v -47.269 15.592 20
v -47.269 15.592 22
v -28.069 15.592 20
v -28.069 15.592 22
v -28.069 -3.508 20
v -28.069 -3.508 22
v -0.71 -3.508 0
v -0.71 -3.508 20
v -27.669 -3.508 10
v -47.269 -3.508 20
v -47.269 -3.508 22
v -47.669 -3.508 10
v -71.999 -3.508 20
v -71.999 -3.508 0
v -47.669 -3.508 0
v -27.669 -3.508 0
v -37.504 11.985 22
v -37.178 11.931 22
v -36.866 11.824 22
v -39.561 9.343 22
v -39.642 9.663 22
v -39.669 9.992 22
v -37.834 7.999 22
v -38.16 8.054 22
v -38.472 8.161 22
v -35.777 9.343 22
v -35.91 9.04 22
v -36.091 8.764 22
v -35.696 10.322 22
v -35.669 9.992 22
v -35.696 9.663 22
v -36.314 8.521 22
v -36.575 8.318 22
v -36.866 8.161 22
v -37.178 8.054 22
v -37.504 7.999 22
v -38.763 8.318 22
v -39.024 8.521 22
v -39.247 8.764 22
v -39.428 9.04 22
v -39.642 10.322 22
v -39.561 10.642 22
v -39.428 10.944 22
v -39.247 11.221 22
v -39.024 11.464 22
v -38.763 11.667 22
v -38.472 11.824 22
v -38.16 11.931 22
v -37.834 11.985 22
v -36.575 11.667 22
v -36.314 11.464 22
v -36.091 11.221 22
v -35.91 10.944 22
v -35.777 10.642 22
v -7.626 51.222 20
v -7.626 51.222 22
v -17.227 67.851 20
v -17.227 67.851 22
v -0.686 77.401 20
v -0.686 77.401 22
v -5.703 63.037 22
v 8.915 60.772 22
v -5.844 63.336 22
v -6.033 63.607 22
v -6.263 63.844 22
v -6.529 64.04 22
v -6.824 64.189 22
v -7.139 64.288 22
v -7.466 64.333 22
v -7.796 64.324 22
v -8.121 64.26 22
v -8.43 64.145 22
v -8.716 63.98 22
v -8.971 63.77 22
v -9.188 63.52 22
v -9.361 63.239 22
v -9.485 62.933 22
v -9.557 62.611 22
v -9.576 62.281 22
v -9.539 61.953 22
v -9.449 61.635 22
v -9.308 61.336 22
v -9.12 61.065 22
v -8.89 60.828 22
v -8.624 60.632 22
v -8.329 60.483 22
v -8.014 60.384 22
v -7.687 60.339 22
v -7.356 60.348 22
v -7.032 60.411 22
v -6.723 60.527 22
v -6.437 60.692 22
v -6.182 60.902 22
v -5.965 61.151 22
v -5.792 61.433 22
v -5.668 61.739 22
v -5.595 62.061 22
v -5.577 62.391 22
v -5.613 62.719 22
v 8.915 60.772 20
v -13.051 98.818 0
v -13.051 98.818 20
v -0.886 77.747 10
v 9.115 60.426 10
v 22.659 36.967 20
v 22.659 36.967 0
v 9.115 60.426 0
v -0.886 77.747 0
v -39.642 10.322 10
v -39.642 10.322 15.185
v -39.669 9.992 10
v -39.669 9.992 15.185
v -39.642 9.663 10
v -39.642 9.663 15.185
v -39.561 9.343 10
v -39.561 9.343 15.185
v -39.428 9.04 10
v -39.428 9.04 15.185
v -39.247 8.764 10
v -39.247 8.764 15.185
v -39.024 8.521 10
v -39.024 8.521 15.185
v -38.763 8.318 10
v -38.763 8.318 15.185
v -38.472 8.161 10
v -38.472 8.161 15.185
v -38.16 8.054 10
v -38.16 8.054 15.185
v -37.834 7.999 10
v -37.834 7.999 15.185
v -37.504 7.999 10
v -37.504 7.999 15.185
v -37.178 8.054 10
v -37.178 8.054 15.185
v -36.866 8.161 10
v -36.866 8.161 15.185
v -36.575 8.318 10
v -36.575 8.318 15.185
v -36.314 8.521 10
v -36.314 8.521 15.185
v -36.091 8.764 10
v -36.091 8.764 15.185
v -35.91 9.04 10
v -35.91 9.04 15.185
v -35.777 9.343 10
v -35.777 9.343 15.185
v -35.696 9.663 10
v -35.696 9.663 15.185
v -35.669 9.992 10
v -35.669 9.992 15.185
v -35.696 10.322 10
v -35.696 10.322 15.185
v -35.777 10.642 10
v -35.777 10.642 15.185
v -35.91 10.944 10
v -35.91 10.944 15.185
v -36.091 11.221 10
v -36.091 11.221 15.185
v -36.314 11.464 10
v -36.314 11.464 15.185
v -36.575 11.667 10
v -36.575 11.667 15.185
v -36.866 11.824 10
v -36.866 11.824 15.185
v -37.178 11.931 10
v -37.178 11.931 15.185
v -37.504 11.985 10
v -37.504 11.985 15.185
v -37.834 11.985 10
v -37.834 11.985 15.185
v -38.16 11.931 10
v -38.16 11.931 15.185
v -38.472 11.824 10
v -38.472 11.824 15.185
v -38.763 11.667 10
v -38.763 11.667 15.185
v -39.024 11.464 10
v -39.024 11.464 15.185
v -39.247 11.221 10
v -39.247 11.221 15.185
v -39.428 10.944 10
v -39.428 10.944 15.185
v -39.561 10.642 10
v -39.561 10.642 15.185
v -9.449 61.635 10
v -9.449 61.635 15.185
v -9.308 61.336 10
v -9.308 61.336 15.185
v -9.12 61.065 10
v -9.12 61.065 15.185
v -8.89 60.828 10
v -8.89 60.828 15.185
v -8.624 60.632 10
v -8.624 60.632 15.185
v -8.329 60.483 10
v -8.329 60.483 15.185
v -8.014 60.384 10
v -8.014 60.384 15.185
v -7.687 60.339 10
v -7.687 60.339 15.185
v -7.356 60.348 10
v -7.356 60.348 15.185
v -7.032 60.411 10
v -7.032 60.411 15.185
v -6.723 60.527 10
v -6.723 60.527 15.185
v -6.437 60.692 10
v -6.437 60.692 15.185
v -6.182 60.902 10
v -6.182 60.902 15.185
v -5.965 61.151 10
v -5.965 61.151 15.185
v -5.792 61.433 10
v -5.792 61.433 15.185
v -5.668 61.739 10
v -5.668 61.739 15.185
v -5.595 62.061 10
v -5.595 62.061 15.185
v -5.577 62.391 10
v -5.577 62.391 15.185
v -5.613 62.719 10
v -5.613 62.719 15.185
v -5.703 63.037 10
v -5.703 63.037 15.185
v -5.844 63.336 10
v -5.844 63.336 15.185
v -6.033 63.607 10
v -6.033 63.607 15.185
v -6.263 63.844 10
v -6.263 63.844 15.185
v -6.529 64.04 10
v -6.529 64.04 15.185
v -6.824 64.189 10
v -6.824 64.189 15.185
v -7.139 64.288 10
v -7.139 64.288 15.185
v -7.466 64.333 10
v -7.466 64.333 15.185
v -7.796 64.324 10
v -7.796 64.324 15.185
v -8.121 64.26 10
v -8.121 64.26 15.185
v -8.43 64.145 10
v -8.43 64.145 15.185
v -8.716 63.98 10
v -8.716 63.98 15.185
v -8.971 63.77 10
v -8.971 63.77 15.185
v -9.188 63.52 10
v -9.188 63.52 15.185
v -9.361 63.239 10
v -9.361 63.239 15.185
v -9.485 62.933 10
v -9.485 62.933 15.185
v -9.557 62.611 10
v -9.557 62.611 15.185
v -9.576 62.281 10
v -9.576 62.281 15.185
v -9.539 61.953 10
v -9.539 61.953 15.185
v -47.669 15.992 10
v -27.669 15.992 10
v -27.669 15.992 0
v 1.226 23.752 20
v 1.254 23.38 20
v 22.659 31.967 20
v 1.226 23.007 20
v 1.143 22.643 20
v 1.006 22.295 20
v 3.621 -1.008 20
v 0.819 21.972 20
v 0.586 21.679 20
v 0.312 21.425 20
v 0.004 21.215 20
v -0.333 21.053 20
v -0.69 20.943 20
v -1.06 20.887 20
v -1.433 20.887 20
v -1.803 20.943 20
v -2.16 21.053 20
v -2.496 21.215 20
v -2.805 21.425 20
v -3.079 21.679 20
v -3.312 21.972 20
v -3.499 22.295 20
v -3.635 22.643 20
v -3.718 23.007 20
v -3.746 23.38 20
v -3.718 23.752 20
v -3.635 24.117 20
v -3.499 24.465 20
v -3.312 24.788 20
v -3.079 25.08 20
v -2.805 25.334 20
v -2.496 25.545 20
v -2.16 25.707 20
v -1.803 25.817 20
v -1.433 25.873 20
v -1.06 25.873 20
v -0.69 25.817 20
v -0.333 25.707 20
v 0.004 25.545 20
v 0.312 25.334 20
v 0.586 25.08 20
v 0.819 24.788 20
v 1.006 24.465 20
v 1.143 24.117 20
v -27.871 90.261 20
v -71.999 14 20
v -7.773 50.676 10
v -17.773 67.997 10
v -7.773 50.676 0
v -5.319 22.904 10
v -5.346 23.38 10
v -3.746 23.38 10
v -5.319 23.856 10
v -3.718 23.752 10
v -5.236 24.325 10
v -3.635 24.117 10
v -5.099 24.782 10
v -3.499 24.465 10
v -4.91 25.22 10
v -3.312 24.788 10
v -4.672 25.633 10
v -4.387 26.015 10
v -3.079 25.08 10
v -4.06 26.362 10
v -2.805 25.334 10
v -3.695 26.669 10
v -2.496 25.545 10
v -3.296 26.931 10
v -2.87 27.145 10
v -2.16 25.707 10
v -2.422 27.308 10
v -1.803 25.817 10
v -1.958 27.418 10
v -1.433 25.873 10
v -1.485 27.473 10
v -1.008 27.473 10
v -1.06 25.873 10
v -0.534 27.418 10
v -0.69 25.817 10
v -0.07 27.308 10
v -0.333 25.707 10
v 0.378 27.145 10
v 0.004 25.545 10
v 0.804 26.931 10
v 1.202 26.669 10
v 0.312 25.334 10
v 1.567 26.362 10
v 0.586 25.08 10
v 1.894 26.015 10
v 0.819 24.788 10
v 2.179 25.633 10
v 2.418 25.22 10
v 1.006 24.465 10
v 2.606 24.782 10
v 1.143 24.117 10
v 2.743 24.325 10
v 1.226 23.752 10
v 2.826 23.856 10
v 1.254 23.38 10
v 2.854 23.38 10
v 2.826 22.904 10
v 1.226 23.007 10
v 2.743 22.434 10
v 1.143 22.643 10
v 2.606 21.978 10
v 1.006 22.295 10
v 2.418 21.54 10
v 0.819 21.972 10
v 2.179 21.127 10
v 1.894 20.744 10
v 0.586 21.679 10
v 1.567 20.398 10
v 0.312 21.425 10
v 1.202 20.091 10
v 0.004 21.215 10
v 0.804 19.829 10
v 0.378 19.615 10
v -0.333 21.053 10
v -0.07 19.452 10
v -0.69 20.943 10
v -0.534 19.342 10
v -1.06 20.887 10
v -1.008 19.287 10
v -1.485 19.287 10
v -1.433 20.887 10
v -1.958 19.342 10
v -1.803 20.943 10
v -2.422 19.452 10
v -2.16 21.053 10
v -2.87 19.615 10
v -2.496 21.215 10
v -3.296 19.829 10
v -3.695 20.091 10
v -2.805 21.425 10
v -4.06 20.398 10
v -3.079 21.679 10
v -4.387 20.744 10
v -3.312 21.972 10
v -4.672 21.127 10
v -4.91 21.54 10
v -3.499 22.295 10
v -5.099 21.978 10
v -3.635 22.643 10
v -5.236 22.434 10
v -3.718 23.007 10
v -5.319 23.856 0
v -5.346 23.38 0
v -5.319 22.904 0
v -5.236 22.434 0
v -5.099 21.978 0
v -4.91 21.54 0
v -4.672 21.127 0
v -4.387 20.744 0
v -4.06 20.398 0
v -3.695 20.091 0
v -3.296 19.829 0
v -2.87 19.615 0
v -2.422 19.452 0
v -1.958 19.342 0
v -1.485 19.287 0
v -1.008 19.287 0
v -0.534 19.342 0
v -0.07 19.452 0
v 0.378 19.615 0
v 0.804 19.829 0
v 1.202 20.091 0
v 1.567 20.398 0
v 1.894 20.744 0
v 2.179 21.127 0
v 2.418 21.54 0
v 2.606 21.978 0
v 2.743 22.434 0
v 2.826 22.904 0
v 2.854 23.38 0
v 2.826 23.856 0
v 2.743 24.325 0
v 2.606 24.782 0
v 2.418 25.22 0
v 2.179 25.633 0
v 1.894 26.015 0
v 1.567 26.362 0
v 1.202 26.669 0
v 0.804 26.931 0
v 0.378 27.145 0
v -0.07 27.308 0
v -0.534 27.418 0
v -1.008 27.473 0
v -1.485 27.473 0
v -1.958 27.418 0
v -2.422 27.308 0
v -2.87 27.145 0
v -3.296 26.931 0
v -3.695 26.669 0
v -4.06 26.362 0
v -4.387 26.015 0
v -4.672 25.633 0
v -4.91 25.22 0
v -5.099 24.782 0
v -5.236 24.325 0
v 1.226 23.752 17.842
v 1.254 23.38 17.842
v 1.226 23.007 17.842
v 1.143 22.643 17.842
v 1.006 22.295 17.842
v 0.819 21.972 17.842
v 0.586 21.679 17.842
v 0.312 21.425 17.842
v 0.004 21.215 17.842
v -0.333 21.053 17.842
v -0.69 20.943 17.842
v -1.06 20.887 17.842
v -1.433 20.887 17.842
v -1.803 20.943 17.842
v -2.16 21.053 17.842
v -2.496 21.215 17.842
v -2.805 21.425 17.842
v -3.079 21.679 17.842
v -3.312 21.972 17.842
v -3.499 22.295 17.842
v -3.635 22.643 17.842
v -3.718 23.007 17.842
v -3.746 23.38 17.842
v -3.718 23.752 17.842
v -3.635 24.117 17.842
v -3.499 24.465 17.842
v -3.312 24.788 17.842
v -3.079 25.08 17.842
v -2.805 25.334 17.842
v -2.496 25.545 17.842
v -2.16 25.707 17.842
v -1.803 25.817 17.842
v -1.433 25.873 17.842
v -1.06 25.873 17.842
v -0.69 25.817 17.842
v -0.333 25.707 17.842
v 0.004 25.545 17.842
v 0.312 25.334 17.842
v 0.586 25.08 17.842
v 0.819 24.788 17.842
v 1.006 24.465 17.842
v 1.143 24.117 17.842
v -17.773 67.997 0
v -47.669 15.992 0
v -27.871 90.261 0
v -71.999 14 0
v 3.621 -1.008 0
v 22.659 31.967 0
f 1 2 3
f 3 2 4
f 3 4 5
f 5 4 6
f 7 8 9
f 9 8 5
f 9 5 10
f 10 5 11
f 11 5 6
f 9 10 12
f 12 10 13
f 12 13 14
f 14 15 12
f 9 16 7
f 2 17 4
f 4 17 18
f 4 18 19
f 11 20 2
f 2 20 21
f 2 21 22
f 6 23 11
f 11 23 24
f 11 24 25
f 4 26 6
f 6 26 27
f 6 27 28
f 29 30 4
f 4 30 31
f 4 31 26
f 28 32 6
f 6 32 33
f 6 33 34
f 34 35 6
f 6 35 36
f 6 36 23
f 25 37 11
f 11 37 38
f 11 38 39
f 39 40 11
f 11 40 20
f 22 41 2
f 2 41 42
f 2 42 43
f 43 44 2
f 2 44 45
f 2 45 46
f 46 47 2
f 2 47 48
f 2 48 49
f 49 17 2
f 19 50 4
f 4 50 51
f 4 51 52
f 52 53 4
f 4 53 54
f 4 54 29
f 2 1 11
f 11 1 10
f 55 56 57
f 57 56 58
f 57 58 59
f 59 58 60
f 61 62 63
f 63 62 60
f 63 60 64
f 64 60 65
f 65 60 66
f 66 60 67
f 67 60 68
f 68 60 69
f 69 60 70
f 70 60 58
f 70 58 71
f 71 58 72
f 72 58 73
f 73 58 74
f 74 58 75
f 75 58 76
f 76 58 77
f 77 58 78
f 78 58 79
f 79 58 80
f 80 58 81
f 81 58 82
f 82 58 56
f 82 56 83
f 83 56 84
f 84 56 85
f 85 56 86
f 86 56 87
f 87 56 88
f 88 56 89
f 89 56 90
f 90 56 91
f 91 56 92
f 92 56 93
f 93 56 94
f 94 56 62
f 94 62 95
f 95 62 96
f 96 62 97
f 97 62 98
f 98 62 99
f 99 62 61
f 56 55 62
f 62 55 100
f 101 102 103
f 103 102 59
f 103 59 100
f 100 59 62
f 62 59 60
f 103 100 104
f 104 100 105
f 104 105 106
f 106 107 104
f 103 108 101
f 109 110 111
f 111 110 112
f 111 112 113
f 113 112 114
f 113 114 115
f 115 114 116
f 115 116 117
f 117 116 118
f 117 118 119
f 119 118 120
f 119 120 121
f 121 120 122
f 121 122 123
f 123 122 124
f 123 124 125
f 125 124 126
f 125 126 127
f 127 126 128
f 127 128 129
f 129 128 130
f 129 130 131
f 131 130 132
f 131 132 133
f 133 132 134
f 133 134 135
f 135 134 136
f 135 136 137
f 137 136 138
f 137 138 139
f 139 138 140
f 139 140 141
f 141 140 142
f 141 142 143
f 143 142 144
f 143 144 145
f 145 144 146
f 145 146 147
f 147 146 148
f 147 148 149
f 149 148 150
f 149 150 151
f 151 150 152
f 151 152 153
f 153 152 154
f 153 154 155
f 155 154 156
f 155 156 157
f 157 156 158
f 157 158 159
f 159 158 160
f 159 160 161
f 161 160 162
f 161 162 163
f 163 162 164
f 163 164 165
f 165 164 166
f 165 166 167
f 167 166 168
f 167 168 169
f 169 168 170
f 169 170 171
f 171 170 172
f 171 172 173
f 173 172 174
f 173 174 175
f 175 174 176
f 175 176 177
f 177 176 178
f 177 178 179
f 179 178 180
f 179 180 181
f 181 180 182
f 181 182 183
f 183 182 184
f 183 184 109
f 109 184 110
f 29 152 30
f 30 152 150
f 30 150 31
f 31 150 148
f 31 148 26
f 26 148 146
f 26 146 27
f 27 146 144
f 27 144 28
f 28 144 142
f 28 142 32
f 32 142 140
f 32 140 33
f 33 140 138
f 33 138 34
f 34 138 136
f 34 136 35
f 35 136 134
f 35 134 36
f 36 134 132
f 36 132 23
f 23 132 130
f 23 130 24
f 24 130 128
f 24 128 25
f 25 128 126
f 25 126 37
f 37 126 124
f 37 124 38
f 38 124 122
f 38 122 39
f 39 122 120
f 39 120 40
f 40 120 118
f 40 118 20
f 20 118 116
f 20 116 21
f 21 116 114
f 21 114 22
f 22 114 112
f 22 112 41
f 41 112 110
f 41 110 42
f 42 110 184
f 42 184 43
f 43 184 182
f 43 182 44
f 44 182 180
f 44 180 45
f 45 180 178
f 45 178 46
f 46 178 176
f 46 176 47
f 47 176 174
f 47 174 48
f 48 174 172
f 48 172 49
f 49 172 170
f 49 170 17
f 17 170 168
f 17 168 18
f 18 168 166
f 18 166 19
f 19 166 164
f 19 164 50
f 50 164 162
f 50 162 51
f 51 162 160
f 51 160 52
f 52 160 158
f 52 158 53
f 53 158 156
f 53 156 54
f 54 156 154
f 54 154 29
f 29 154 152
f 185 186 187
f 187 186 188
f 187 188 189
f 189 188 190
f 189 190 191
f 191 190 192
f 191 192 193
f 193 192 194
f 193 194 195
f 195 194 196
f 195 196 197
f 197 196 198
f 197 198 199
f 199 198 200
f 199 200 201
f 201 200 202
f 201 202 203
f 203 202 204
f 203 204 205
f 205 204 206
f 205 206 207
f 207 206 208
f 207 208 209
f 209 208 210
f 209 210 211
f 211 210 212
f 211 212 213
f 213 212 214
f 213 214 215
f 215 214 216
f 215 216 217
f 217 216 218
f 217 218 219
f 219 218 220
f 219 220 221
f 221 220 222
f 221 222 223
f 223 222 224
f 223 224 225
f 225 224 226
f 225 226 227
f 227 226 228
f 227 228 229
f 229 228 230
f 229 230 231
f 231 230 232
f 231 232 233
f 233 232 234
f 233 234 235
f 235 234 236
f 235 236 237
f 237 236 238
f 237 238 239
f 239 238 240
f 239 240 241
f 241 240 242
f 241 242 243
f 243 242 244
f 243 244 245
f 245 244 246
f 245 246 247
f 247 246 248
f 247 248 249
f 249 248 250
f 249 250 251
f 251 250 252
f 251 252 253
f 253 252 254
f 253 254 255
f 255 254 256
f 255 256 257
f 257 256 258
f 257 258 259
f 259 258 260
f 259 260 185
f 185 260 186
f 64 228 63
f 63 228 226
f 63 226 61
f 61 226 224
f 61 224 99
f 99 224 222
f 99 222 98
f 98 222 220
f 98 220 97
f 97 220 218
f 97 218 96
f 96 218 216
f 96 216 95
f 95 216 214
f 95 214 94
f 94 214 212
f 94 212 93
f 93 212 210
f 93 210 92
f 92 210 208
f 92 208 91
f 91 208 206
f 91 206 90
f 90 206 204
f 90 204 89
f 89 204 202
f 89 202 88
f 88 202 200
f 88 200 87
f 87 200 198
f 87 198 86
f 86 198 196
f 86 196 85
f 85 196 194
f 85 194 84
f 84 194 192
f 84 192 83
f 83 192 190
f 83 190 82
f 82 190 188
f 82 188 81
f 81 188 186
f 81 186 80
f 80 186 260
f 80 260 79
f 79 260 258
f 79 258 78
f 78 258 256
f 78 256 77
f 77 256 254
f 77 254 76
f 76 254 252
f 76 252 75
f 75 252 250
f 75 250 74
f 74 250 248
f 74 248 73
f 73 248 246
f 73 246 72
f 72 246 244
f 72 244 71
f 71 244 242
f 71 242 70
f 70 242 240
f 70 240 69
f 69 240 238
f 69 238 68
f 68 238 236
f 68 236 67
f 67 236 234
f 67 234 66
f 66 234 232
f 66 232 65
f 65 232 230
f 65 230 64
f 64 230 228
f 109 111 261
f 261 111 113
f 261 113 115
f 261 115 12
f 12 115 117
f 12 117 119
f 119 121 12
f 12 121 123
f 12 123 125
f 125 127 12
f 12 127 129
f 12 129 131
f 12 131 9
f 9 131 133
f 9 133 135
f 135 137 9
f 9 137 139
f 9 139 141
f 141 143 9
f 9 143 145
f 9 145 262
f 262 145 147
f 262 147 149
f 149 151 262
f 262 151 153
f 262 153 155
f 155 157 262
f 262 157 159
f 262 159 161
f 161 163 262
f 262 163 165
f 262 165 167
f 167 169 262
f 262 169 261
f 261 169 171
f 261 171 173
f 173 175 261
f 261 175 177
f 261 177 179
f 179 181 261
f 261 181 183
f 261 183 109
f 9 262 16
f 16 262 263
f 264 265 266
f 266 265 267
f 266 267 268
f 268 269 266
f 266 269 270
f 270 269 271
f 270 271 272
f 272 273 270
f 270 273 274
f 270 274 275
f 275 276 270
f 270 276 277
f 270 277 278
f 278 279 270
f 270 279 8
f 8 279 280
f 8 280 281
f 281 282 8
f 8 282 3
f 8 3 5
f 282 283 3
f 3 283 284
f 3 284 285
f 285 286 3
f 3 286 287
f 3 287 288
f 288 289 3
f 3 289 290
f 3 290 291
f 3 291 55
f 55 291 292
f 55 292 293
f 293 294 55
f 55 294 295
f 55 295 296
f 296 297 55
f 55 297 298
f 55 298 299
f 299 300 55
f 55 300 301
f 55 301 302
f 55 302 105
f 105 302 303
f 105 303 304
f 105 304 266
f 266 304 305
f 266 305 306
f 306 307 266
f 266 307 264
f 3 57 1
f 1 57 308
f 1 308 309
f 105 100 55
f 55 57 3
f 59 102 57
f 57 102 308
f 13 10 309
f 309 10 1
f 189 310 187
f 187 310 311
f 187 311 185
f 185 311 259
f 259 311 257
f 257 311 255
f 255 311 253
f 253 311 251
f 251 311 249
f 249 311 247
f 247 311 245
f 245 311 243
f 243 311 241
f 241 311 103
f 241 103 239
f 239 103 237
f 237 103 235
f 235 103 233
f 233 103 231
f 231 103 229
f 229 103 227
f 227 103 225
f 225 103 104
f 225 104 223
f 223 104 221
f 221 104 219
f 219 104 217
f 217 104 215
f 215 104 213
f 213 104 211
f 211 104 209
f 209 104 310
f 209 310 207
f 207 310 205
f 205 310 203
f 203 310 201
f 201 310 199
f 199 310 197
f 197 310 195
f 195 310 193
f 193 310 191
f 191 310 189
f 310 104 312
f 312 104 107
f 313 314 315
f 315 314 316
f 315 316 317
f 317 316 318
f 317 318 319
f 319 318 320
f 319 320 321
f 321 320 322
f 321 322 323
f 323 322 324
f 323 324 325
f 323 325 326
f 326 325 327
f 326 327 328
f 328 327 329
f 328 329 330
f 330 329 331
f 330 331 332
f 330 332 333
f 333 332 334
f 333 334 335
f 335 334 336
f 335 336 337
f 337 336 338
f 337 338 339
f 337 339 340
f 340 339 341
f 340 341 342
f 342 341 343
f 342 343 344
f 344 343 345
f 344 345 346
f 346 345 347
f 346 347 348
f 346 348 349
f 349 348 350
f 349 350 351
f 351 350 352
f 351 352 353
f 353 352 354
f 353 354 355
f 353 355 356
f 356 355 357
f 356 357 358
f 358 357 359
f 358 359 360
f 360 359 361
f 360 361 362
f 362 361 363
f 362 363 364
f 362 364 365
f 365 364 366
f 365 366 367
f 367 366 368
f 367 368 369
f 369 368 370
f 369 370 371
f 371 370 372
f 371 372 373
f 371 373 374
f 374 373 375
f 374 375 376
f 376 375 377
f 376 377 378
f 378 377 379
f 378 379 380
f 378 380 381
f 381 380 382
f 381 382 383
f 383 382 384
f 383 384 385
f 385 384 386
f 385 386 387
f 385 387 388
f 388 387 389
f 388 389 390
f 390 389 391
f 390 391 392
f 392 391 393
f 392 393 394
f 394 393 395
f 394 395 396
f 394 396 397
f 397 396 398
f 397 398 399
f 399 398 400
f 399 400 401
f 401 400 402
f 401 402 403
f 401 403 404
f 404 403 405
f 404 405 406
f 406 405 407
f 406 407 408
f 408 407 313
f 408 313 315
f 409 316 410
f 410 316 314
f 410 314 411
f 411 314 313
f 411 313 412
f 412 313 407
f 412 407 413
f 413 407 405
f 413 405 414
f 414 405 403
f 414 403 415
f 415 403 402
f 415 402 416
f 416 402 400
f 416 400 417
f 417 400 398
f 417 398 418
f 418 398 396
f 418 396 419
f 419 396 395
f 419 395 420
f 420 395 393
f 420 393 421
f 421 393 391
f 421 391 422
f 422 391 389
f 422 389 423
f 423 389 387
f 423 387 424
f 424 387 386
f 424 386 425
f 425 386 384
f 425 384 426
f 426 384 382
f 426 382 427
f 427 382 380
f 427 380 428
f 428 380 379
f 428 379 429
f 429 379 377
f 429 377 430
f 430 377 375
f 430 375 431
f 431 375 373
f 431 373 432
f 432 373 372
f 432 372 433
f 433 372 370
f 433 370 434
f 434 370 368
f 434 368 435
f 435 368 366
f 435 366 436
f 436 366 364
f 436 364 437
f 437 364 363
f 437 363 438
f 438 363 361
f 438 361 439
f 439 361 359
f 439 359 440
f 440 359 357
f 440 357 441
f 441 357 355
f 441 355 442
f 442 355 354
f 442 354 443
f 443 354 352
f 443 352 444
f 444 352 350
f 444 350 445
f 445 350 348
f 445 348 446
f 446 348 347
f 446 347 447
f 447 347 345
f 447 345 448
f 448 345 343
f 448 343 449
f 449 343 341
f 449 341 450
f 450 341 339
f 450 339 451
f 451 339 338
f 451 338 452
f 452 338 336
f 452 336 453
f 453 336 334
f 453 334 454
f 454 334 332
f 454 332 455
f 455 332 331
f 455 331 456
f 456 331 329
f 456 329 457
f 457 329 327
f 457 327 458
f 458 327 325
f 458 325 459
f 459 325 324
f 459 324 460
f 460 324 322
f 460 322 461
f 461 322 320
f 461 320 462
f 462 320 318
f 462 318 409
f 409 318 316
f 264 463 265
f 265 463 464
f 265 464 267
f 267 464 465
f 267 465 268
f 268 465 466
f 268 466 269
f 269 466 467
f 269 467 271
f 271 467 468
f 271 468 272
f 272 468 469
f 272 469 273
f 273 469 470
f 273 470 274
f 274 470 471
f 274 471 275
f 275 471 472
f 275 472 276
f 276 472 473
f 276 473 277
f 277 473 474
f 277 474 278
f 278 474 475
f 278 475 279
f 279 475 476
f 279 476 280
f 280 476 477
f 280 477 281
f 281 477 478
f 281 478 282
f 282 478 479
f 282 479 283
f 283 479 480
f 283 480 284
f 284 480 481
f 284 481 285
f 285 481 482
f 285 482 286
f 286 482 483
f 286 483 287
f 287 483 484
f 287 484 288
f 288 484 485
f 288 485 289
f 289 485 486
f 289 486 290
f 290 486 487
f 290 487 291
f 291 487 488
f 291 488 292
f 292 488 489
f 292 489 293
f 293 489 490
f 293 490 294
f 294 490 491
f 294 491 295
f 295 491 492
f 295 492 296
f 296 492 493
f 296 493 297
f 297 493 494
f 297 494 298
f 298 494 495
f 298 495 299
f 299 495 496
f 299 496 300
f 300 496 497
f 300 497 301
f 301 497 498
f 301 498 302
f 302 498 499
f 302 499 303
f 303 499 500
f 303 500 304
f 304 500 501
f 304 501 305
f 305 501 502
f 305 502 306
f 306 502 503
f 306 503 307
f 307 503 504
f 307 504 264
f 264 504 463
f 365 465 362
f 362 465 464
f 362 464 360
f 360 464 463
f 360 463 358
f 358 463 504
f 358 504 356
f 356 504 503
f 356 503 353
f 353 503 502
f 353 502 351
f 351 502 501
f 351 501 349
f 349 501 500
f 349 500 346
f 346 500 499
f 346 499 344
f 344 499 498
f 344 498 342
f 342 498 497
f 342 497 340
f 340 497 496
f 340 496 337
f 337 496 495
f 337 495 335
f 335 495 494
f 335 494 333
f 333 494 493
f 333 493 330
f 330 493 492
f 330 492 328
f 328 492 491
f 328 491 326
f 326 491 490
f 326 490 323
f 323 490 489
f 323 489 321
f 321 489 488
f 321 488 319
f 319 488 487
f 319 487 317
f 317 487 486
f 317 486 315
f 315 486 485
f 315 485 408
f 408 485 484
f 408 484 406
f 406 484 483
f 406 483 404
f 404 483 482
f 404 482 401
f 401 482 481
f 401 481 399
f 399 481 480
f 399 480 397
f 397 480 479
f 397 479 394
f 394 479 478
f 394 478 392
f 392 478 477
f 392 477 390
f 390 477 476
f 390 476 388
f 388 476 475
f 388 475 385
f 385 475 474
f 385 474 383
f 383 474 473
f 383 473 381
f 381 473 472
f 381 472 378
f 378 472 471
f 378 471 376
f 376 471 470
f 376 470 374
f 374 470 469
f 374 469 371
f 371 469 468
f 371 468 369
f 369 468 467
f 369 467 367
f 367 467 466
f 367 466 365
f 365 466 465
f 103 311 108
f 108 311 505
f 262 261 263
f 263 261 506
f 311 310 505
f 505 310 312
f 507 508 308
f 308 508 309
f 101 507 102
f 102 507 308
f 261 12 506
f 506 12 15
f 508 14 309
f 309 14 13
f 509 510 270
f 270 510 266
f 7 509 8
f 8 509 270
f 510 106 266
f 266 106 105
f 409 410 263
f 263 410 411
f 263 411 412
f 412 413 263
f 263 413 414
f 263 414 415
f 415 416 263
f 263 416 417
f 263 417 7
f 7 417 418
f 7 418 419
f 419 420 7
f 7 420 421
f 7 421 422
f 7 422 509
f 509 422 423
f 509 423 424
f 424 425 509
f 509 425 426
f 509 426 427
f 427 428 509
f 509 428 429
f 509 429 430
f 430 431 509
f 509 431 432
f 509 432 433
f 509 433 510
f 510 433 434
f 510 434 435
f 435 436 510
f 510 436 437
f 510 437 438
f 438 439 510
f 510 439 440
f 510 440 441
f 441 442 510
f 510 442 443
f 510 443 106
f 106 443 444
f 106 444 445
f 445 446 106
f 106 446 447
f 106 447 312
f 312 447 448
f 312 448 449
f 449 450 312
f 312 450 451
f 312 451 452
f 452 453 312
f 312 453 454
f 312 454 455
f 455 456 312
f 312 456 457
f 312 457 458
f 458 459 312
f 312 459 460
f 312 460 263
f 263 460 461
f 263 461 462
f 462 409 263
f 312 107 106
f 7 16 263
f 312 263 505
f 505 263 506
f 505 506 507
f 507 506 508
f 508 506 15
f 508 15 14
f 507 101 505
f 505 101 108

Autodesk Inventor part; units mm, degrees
ref_plane "YZ Plane" through (0, 0, 0) normal (1, 0, 0) x (0, 1, 0)
ref_plane "XZ Plane" through (0, 0, 0) normal (0, 1, 0) x (-1, 0, 0)
ref_plane "XY Plane" through (0, 0, 0) normal (0, 0, 1) x (1, 0, 0)
sketch "Sketch1" plane through (0, 0, 0) normal (0, 0, 1) x (1, 0, 0)
  line L0 (-27.669, 1.4923) -> (-27.669, 15.9923)
  line L1 (-27.669, 15.9923) -> (-47.669, 15.9923)
  line L2 (-47.669, 15.9923) -> (-47.669, 1.4923)
  line L3 (4.7848, 57.9257) -> (-7.7725, 50.6757)
  line L4 (-7.7725, 50.6757) -> (-17.7732, 67.9973)
  line L5 (-17.7732, 67.9973) -> (-5.2158, 75.2473)
  circle A0 centre (-1.2464, 23.3799) radius 2.05
  line L6 (-47.669, 1.4923) -> (-67.669, 1.4923)
  line L7 (-27.669, 1.4923) -> (-0.5414, 1.7834)
  line L8 (4.7848, 57.9257) -> (18.3286, 34.4672)
  line L9 (-0.7095, 1.4923) -> (18.3286, 34.4672)
  line L10 (-15.2158, 92.5678) -> (-5.2158, 75.2473)
  line L11 (-47.669, 1.4923) -> (-67.669, 1.4923)
  line L12 (-67.669, 1.4923) -> (-67.669, 11.5002)
  line L13 (-47.669, 11.5) -> (-47.669, 1.4923)
  line L14 (-5.2158, 75.2473) -> (-15.2158, 92.5678)
  line L15 (-15.2158, 92.5678) -> (-23.5411, 87.7613)
  line L16 (-13.8463, 70.2645) -> (-5.2158, 75.2473)
  line L17 (-5.2158, 75.2473) -> (14.7842, 75.2473) construction
  line L18 (-23.5411, 87.7613) -> (-67.669, 11.5002)
  line L19 (18.3286, 34.4672) -> (22.6587, 36.9672)
  line L20 (-0.7095, 1.4923) -> (-0.7095, -3.5077)
  line L21 (-67.669, 1.4923) -> (-67.669, -3.5077)
  line L22 (-47.669, 1.4923) -> (-47.669, -3.5077)
  line L23 (-47.669, -3.5077) -> (-67.669, -3.5077)
  line L24 (-27.669, 1.4923) -> (-27.669, -3.5077)
  line L25 (-27.669, -3.5077) -> (-0.7095, -3.5077)
  line L26 (4.7848, 57.9257) -> (9.115, 60.4257)
  line L27 (9.115, 60.4257) -> (22.6587, 36.9672)
  line L28 (-15.2158, 92.5678) -> (-10.8857, 95.0678)
  line L29 (-5.2158, 75.2473) -> (-0.8857, 77.7473)
  line L30 (-0.8857, 77.7473) -> (-10.8857, 95.0678)
  line L31 (-23.5411, 87.7613) -> (-18.5411, 87.7613) construction
  line L32 (-0.7095, 1.4923) -> (3.6206, -1.0077)
  line L33 (-0.7095, 1.4923) -> (4.2905, 1.4923) construction
  line L34 (18.3286, 34.4672) -> (22.6587, 31.9672)
  line L35 (18.3286, 34.4672) -> (23.3286, 34.4672) construction
  line L36 (-67.669, 11.5002) -> (-71.9991, 14.0002)
  line L37 (-67.669, 11.5002) -> (-62.669, 11.5002) construction
  line L38 (-23.5411, 87.7613) -> (-27.8713, 90.261)
  line L39 (-27.8713, 90.261) -> (-71.9991, 14.0002)
  line L40 (3.6206, -1.0077) -> (22.6587, 31.9672)
  line L41 (-71.9991, 14.0002) -> (-71.9991, -3.5077)
  line L42 (-71.9991, -3.5077) -> (-67.669, -3.5077)
  line L43 (-10.8857, 95.0678) -> (-13.0507, 98.8177)
  line L44 (-13.0507, 98.8177) -> (-27.8713, 90.261)
  line L45 (22.6587, 31.9672) -> (22.6587, 36.9672)
  line L46 (-0.7095, -3.5077) -> (3.6206, -1.0077)
  point P0 (0, 0)
  point P1 (0, 0)
  dimension "d19" = 4.1
  dimension "d21" = 20
  dimension "d23" = 20
  dimension "d24" = 120
  dimension "d26" = 5
  dimension "d27" = 5
  dimension "d28" = 5
  dimension "d29" = 5
  dimension "d30" = 5
  dimension "d31" = 5
  dimension "d32" = 5
  dimension "d33" = 5
  dimension "d39" = 5
  dimension "d40" = 30
  dimension "d41" = 5
  dimension "d42" = 30
  dimension "d43" = 5
  dimension "d44" = 150
  dimension "d45" = 5
  dimension "d46" = 4.33
  dimension "d55" = 90
  dimension "d56" = 120
  dimension "d57" = 90
  dimension "d58" = 90
extrude "Extrusion1" add sketch "Sketch1" along normal blind 20
sketch "Sketch4" plane through (-27.669, -3.5077, 0) normal (-1, 0, 0) x (0, 0, 1)
  line L0 (20, 19.5) -> (20, 0) projected
  line L1 (0, 19.5) -> (20, 19.5) projected
  line L2 (20, 0) -> (18, 0)
  line L3 (18, 0) -> (18, 19.5)
  line L4 (18, 19.5) -> (20, 19.5)
  line L5 (20, 19.5) -> (20, 0)
  point P0 (0, 3.5077)
  dimension "d59" = 2
extrude "Extrusion4" add sketch "Sketch4" along normal blind 20
sketch "Sketch5" plane through (-0.8857, 77.7473, 0) normal (0.5, -0.8660254, 0) x (0.8660254, 0.5, 0)
  line L0 (0, 0) -> (0, 20) projected
  line L1 (0, 20) -> (-19.5, 20)
  line L2 (-19.5, 20) -> (-19.5, 18)
  line L3 (-19.5, 18) -> (0, 18)
  line L4 (0, 18) -> (0, 20)
  point P0 (-38.1066, 0)
  dimension "d62" = 19.5
  dimension "d63" = 2
extrude "Extrusion5" add sketch "Sketch5" along normal blind 21
sketch "Sketch7" plane through (0, 0, 0) normal (0, 0, -1) x (-1, 0, 0)
  line L0 (0, 0) -> (0, 23.3799)
  circle A0 centre (1.2464, 23.3799) radius 2.05 projected
  line L1 (0, 23.3799) -> (1.2464, 23.3799)
hole "Hole1" at (-1.2464, 23.3799, 0) direction (0, 0, 1) diameter 5 end through all counterbore diameter 8.2 counterbore depth 10
sketch "Sketch8" plane through (-0.8857, 77.7473, 18) normal (0, 0, -1) x (-0.8660254, -0.5, 0)
  line L0 (0, 0) -> (0, -20.0013) projected
  line L1 (19.5, -20.0013) -> (0, -20.0013) projected
  line L2 (0, 0) -> (19.5, 0)
  line L3 (19.5, 0) -> (19.5, -20.0013)
  line L4 (19.5, -20.0013) -> (0, -20.0013)
  line L5 (0, -20.0013) -> (0, 0)
  point P0 (38.1066, -67.774)
extrude "Extrusion6" add sketch "Sketch8" along normal blind 8 and the other way blind 4
sketch "Sketch9" plane through (-27.669, -3.5077, 18) normal (0, 0, -1) x (-1, 0, 0)
  line L0 (20, 0) -> (20, 19.5) projected
  line L1 (0, 0) -> (20, 0)
  line L2 (20, 0) -> (20, 19.5)
  line L3 (20, 19.5) -> (0, 19.5)
  line L4 (0, 19.5) -> (0, 0)
  point P0 (-27.669, 3.5077)
extrude "Extrusion7" add sketch "Sketch9" along normal blind 8 and the other way blind 4
sketch "Sketch10" plane through (-0.8857, 77.7473, 22) normal (0, 0, 1) x (0.8660254, 0.5, 0)
  line L0 (0, 0) -> (-19.5, 0) projected
  line L1 (-19.5, -20.0013) -> (0, -20.0013) projected
  line L2 (0, 0) -> (-5, 0)
  line L3 (-5, 0) -> (-5, -20.0013)
  line L4 (-5, -20.0013) -> (0, -20.0013)
  line L5 (0, -20.0013) -> (0, 0)
  line L6 (-5, -20.0013) -> (-13.5, -20.0013)
  line L7 (-13.5, -20.0013) -> (-13.5, -10.0013)
  line L8 (-13.5, -10.0013) -> (-5, -10.0013)
  line L9 (-5, -10.0013) -> (-5, -20.0013)
  point P0 (-38.1066, -67.774)
  dimension "d81" = 5
  dimension "d82" = 8.5
  dimension "d83" = 10
hole "Hole2" at (-7.5764, 62.3359, 22) direction (0, 0, -1) diameter 4 end through all
sketch "Sketch11" plane through (-27.669, -3.5077, 22) normal (0, 0, 1) x (1, 0, 0)
  line L0 (-20, 0) -> (0, 0) projected
  line L1 (0, 0) -> (-20, 0)
  line L2 (-20, 0) -> (-20, 5)
  line L3 (-20, 5) -> (0, 5)
  line L4 (0, 5) -> (0, 0)
  line L5 (-20, 5) -> (-10, 5)
  line L6 (-10, 5) -> (-10, 13.5)
  line L7 (-10, 13.5) -> (-20, 13.5)
  line L8 (-20, 13.5) -> (-20, 5)
  point P0 (27.669, 3.5077)
  dimension "d91" = 20
  dimension "d92" = 5
  dimension "d93" = 10
  dimension "d101" = 8.5
hole "Hole3" at (-37.669, 9.9923, 22) direction (0, 0, -1) diameter 4 end through all
sketch "Sketch12" plane through (9.115, 60.4257, 20) normal (0.5, -0.8660254, 0) x (0.8660254, 0.5, 0)
  line L0 (0, 0) -> (-19.5, 0)
  line L1 (-19.5, 0) -> (-19.5, 2)
  line L2 (-19.5, 2) -> (0, 2)
  line L3 (0, 2) -> (0, 0)
  point P0 (-38.1066, -20)
extrude "Extrusion8" cut sketch "Sketch12" against normal blind 0.4
sketch "Sketch13" plane through (-17.7732, 67.9973, 22) normal (-0.5, 0.8660254, 0) x (0.8660254, 0.5, 0)
  line L0 (19.5, 0) -> (0, 0) projected
  line L1 (19.5, 2) -> (19.5, 0) projected
  line L2 (0, 0) -> (19.5, 0)
  line L3 (19.5, 0) -> (19.5, 2)
  line L4 (19.5, 2) -> (0, 2)
  line L5 (0, 2) -> (0, 0)
  point P0 (-18.6066, 22)
extrude "Extrusion9" cut sketch "Sketch13" against normal blind 0.4
sketch "Sketch14" plane through (-7.9725, 51.0221, 20) normal (-0.8660254, -0.5, 0) x (0, 0, 1)
  line L0 (0, 0) -> (0, 19.2013) projected
  line L1 (2, 19.2013) -> (2, 0) projected
  line L2 (0, 0) -> (2, 0)
  line L3 (2, 0) -> (2, 19.2013)
  line L4 (2, 19.2013) -> (0, 19.2013)
  line L5 (0, 19.2013) -> (0, 0)
  point P0 (-20, -48.1727)
extrude "Extrusion10" cut sketch "Sketch14" against normal blind 0.4
sketch "Sketch15" plane through (-47.669, -3.5077, 20) normal (-1, 0, 0) x (0, 0, 1)
  line L0 (0, 0) -> (2, 0)
  line L1 (2, 0) -> (2, 19.5)
  line L2 (2, 19.5) -> (0, 19.5)
  line L3 (0, 19.5) -> (0, 0)
  point P0 (-20, 3.5077)
extrude "Extrusion11" cut sketch "Sketch15" against normal blind 0.4
sketch "Sketch16" plane through (-27.669, -3.5077, 20) normal (1, 0, 0) x (0, 0, -1)
  line L0 (0, 19.5) -> (0, 0) projected
  line L1 (-2, 0) -> (-2, 19.5) projected
  line L2 (0, 0) -> (-2, 0)
  line L3 (-2, 0) -> (-2, 19.5)
  line L4 (-2, 19.5) -> (0, 19.5)
  line L5 (0, 19.5) -> (0, 0)
  point P0 (20, 3.5077)
extrude "Extrusion12" cut sketch "Sketch16" against normal blind 0.4
sketch "Sketch17" plane through (-47.269, 15.9923, 22) normal (0, 1, 0) x (1, 0, 0)
  line L0 (19.2, 0) -> (0, 0) projected
  line L1 (0, 2) -> (19.2, 2)
  line L2 (19.2, 2) -> (19.2, 0)
  line L3 (19.2, 0) -> (0, 0)
  line L4 (0, 0) -> (0, 2)
  point P0 (47.269, 22)
extrude "Extrusion13" cut sketch "Sketch17" against normal blind 0.4
properties part number "Delta Feet"
